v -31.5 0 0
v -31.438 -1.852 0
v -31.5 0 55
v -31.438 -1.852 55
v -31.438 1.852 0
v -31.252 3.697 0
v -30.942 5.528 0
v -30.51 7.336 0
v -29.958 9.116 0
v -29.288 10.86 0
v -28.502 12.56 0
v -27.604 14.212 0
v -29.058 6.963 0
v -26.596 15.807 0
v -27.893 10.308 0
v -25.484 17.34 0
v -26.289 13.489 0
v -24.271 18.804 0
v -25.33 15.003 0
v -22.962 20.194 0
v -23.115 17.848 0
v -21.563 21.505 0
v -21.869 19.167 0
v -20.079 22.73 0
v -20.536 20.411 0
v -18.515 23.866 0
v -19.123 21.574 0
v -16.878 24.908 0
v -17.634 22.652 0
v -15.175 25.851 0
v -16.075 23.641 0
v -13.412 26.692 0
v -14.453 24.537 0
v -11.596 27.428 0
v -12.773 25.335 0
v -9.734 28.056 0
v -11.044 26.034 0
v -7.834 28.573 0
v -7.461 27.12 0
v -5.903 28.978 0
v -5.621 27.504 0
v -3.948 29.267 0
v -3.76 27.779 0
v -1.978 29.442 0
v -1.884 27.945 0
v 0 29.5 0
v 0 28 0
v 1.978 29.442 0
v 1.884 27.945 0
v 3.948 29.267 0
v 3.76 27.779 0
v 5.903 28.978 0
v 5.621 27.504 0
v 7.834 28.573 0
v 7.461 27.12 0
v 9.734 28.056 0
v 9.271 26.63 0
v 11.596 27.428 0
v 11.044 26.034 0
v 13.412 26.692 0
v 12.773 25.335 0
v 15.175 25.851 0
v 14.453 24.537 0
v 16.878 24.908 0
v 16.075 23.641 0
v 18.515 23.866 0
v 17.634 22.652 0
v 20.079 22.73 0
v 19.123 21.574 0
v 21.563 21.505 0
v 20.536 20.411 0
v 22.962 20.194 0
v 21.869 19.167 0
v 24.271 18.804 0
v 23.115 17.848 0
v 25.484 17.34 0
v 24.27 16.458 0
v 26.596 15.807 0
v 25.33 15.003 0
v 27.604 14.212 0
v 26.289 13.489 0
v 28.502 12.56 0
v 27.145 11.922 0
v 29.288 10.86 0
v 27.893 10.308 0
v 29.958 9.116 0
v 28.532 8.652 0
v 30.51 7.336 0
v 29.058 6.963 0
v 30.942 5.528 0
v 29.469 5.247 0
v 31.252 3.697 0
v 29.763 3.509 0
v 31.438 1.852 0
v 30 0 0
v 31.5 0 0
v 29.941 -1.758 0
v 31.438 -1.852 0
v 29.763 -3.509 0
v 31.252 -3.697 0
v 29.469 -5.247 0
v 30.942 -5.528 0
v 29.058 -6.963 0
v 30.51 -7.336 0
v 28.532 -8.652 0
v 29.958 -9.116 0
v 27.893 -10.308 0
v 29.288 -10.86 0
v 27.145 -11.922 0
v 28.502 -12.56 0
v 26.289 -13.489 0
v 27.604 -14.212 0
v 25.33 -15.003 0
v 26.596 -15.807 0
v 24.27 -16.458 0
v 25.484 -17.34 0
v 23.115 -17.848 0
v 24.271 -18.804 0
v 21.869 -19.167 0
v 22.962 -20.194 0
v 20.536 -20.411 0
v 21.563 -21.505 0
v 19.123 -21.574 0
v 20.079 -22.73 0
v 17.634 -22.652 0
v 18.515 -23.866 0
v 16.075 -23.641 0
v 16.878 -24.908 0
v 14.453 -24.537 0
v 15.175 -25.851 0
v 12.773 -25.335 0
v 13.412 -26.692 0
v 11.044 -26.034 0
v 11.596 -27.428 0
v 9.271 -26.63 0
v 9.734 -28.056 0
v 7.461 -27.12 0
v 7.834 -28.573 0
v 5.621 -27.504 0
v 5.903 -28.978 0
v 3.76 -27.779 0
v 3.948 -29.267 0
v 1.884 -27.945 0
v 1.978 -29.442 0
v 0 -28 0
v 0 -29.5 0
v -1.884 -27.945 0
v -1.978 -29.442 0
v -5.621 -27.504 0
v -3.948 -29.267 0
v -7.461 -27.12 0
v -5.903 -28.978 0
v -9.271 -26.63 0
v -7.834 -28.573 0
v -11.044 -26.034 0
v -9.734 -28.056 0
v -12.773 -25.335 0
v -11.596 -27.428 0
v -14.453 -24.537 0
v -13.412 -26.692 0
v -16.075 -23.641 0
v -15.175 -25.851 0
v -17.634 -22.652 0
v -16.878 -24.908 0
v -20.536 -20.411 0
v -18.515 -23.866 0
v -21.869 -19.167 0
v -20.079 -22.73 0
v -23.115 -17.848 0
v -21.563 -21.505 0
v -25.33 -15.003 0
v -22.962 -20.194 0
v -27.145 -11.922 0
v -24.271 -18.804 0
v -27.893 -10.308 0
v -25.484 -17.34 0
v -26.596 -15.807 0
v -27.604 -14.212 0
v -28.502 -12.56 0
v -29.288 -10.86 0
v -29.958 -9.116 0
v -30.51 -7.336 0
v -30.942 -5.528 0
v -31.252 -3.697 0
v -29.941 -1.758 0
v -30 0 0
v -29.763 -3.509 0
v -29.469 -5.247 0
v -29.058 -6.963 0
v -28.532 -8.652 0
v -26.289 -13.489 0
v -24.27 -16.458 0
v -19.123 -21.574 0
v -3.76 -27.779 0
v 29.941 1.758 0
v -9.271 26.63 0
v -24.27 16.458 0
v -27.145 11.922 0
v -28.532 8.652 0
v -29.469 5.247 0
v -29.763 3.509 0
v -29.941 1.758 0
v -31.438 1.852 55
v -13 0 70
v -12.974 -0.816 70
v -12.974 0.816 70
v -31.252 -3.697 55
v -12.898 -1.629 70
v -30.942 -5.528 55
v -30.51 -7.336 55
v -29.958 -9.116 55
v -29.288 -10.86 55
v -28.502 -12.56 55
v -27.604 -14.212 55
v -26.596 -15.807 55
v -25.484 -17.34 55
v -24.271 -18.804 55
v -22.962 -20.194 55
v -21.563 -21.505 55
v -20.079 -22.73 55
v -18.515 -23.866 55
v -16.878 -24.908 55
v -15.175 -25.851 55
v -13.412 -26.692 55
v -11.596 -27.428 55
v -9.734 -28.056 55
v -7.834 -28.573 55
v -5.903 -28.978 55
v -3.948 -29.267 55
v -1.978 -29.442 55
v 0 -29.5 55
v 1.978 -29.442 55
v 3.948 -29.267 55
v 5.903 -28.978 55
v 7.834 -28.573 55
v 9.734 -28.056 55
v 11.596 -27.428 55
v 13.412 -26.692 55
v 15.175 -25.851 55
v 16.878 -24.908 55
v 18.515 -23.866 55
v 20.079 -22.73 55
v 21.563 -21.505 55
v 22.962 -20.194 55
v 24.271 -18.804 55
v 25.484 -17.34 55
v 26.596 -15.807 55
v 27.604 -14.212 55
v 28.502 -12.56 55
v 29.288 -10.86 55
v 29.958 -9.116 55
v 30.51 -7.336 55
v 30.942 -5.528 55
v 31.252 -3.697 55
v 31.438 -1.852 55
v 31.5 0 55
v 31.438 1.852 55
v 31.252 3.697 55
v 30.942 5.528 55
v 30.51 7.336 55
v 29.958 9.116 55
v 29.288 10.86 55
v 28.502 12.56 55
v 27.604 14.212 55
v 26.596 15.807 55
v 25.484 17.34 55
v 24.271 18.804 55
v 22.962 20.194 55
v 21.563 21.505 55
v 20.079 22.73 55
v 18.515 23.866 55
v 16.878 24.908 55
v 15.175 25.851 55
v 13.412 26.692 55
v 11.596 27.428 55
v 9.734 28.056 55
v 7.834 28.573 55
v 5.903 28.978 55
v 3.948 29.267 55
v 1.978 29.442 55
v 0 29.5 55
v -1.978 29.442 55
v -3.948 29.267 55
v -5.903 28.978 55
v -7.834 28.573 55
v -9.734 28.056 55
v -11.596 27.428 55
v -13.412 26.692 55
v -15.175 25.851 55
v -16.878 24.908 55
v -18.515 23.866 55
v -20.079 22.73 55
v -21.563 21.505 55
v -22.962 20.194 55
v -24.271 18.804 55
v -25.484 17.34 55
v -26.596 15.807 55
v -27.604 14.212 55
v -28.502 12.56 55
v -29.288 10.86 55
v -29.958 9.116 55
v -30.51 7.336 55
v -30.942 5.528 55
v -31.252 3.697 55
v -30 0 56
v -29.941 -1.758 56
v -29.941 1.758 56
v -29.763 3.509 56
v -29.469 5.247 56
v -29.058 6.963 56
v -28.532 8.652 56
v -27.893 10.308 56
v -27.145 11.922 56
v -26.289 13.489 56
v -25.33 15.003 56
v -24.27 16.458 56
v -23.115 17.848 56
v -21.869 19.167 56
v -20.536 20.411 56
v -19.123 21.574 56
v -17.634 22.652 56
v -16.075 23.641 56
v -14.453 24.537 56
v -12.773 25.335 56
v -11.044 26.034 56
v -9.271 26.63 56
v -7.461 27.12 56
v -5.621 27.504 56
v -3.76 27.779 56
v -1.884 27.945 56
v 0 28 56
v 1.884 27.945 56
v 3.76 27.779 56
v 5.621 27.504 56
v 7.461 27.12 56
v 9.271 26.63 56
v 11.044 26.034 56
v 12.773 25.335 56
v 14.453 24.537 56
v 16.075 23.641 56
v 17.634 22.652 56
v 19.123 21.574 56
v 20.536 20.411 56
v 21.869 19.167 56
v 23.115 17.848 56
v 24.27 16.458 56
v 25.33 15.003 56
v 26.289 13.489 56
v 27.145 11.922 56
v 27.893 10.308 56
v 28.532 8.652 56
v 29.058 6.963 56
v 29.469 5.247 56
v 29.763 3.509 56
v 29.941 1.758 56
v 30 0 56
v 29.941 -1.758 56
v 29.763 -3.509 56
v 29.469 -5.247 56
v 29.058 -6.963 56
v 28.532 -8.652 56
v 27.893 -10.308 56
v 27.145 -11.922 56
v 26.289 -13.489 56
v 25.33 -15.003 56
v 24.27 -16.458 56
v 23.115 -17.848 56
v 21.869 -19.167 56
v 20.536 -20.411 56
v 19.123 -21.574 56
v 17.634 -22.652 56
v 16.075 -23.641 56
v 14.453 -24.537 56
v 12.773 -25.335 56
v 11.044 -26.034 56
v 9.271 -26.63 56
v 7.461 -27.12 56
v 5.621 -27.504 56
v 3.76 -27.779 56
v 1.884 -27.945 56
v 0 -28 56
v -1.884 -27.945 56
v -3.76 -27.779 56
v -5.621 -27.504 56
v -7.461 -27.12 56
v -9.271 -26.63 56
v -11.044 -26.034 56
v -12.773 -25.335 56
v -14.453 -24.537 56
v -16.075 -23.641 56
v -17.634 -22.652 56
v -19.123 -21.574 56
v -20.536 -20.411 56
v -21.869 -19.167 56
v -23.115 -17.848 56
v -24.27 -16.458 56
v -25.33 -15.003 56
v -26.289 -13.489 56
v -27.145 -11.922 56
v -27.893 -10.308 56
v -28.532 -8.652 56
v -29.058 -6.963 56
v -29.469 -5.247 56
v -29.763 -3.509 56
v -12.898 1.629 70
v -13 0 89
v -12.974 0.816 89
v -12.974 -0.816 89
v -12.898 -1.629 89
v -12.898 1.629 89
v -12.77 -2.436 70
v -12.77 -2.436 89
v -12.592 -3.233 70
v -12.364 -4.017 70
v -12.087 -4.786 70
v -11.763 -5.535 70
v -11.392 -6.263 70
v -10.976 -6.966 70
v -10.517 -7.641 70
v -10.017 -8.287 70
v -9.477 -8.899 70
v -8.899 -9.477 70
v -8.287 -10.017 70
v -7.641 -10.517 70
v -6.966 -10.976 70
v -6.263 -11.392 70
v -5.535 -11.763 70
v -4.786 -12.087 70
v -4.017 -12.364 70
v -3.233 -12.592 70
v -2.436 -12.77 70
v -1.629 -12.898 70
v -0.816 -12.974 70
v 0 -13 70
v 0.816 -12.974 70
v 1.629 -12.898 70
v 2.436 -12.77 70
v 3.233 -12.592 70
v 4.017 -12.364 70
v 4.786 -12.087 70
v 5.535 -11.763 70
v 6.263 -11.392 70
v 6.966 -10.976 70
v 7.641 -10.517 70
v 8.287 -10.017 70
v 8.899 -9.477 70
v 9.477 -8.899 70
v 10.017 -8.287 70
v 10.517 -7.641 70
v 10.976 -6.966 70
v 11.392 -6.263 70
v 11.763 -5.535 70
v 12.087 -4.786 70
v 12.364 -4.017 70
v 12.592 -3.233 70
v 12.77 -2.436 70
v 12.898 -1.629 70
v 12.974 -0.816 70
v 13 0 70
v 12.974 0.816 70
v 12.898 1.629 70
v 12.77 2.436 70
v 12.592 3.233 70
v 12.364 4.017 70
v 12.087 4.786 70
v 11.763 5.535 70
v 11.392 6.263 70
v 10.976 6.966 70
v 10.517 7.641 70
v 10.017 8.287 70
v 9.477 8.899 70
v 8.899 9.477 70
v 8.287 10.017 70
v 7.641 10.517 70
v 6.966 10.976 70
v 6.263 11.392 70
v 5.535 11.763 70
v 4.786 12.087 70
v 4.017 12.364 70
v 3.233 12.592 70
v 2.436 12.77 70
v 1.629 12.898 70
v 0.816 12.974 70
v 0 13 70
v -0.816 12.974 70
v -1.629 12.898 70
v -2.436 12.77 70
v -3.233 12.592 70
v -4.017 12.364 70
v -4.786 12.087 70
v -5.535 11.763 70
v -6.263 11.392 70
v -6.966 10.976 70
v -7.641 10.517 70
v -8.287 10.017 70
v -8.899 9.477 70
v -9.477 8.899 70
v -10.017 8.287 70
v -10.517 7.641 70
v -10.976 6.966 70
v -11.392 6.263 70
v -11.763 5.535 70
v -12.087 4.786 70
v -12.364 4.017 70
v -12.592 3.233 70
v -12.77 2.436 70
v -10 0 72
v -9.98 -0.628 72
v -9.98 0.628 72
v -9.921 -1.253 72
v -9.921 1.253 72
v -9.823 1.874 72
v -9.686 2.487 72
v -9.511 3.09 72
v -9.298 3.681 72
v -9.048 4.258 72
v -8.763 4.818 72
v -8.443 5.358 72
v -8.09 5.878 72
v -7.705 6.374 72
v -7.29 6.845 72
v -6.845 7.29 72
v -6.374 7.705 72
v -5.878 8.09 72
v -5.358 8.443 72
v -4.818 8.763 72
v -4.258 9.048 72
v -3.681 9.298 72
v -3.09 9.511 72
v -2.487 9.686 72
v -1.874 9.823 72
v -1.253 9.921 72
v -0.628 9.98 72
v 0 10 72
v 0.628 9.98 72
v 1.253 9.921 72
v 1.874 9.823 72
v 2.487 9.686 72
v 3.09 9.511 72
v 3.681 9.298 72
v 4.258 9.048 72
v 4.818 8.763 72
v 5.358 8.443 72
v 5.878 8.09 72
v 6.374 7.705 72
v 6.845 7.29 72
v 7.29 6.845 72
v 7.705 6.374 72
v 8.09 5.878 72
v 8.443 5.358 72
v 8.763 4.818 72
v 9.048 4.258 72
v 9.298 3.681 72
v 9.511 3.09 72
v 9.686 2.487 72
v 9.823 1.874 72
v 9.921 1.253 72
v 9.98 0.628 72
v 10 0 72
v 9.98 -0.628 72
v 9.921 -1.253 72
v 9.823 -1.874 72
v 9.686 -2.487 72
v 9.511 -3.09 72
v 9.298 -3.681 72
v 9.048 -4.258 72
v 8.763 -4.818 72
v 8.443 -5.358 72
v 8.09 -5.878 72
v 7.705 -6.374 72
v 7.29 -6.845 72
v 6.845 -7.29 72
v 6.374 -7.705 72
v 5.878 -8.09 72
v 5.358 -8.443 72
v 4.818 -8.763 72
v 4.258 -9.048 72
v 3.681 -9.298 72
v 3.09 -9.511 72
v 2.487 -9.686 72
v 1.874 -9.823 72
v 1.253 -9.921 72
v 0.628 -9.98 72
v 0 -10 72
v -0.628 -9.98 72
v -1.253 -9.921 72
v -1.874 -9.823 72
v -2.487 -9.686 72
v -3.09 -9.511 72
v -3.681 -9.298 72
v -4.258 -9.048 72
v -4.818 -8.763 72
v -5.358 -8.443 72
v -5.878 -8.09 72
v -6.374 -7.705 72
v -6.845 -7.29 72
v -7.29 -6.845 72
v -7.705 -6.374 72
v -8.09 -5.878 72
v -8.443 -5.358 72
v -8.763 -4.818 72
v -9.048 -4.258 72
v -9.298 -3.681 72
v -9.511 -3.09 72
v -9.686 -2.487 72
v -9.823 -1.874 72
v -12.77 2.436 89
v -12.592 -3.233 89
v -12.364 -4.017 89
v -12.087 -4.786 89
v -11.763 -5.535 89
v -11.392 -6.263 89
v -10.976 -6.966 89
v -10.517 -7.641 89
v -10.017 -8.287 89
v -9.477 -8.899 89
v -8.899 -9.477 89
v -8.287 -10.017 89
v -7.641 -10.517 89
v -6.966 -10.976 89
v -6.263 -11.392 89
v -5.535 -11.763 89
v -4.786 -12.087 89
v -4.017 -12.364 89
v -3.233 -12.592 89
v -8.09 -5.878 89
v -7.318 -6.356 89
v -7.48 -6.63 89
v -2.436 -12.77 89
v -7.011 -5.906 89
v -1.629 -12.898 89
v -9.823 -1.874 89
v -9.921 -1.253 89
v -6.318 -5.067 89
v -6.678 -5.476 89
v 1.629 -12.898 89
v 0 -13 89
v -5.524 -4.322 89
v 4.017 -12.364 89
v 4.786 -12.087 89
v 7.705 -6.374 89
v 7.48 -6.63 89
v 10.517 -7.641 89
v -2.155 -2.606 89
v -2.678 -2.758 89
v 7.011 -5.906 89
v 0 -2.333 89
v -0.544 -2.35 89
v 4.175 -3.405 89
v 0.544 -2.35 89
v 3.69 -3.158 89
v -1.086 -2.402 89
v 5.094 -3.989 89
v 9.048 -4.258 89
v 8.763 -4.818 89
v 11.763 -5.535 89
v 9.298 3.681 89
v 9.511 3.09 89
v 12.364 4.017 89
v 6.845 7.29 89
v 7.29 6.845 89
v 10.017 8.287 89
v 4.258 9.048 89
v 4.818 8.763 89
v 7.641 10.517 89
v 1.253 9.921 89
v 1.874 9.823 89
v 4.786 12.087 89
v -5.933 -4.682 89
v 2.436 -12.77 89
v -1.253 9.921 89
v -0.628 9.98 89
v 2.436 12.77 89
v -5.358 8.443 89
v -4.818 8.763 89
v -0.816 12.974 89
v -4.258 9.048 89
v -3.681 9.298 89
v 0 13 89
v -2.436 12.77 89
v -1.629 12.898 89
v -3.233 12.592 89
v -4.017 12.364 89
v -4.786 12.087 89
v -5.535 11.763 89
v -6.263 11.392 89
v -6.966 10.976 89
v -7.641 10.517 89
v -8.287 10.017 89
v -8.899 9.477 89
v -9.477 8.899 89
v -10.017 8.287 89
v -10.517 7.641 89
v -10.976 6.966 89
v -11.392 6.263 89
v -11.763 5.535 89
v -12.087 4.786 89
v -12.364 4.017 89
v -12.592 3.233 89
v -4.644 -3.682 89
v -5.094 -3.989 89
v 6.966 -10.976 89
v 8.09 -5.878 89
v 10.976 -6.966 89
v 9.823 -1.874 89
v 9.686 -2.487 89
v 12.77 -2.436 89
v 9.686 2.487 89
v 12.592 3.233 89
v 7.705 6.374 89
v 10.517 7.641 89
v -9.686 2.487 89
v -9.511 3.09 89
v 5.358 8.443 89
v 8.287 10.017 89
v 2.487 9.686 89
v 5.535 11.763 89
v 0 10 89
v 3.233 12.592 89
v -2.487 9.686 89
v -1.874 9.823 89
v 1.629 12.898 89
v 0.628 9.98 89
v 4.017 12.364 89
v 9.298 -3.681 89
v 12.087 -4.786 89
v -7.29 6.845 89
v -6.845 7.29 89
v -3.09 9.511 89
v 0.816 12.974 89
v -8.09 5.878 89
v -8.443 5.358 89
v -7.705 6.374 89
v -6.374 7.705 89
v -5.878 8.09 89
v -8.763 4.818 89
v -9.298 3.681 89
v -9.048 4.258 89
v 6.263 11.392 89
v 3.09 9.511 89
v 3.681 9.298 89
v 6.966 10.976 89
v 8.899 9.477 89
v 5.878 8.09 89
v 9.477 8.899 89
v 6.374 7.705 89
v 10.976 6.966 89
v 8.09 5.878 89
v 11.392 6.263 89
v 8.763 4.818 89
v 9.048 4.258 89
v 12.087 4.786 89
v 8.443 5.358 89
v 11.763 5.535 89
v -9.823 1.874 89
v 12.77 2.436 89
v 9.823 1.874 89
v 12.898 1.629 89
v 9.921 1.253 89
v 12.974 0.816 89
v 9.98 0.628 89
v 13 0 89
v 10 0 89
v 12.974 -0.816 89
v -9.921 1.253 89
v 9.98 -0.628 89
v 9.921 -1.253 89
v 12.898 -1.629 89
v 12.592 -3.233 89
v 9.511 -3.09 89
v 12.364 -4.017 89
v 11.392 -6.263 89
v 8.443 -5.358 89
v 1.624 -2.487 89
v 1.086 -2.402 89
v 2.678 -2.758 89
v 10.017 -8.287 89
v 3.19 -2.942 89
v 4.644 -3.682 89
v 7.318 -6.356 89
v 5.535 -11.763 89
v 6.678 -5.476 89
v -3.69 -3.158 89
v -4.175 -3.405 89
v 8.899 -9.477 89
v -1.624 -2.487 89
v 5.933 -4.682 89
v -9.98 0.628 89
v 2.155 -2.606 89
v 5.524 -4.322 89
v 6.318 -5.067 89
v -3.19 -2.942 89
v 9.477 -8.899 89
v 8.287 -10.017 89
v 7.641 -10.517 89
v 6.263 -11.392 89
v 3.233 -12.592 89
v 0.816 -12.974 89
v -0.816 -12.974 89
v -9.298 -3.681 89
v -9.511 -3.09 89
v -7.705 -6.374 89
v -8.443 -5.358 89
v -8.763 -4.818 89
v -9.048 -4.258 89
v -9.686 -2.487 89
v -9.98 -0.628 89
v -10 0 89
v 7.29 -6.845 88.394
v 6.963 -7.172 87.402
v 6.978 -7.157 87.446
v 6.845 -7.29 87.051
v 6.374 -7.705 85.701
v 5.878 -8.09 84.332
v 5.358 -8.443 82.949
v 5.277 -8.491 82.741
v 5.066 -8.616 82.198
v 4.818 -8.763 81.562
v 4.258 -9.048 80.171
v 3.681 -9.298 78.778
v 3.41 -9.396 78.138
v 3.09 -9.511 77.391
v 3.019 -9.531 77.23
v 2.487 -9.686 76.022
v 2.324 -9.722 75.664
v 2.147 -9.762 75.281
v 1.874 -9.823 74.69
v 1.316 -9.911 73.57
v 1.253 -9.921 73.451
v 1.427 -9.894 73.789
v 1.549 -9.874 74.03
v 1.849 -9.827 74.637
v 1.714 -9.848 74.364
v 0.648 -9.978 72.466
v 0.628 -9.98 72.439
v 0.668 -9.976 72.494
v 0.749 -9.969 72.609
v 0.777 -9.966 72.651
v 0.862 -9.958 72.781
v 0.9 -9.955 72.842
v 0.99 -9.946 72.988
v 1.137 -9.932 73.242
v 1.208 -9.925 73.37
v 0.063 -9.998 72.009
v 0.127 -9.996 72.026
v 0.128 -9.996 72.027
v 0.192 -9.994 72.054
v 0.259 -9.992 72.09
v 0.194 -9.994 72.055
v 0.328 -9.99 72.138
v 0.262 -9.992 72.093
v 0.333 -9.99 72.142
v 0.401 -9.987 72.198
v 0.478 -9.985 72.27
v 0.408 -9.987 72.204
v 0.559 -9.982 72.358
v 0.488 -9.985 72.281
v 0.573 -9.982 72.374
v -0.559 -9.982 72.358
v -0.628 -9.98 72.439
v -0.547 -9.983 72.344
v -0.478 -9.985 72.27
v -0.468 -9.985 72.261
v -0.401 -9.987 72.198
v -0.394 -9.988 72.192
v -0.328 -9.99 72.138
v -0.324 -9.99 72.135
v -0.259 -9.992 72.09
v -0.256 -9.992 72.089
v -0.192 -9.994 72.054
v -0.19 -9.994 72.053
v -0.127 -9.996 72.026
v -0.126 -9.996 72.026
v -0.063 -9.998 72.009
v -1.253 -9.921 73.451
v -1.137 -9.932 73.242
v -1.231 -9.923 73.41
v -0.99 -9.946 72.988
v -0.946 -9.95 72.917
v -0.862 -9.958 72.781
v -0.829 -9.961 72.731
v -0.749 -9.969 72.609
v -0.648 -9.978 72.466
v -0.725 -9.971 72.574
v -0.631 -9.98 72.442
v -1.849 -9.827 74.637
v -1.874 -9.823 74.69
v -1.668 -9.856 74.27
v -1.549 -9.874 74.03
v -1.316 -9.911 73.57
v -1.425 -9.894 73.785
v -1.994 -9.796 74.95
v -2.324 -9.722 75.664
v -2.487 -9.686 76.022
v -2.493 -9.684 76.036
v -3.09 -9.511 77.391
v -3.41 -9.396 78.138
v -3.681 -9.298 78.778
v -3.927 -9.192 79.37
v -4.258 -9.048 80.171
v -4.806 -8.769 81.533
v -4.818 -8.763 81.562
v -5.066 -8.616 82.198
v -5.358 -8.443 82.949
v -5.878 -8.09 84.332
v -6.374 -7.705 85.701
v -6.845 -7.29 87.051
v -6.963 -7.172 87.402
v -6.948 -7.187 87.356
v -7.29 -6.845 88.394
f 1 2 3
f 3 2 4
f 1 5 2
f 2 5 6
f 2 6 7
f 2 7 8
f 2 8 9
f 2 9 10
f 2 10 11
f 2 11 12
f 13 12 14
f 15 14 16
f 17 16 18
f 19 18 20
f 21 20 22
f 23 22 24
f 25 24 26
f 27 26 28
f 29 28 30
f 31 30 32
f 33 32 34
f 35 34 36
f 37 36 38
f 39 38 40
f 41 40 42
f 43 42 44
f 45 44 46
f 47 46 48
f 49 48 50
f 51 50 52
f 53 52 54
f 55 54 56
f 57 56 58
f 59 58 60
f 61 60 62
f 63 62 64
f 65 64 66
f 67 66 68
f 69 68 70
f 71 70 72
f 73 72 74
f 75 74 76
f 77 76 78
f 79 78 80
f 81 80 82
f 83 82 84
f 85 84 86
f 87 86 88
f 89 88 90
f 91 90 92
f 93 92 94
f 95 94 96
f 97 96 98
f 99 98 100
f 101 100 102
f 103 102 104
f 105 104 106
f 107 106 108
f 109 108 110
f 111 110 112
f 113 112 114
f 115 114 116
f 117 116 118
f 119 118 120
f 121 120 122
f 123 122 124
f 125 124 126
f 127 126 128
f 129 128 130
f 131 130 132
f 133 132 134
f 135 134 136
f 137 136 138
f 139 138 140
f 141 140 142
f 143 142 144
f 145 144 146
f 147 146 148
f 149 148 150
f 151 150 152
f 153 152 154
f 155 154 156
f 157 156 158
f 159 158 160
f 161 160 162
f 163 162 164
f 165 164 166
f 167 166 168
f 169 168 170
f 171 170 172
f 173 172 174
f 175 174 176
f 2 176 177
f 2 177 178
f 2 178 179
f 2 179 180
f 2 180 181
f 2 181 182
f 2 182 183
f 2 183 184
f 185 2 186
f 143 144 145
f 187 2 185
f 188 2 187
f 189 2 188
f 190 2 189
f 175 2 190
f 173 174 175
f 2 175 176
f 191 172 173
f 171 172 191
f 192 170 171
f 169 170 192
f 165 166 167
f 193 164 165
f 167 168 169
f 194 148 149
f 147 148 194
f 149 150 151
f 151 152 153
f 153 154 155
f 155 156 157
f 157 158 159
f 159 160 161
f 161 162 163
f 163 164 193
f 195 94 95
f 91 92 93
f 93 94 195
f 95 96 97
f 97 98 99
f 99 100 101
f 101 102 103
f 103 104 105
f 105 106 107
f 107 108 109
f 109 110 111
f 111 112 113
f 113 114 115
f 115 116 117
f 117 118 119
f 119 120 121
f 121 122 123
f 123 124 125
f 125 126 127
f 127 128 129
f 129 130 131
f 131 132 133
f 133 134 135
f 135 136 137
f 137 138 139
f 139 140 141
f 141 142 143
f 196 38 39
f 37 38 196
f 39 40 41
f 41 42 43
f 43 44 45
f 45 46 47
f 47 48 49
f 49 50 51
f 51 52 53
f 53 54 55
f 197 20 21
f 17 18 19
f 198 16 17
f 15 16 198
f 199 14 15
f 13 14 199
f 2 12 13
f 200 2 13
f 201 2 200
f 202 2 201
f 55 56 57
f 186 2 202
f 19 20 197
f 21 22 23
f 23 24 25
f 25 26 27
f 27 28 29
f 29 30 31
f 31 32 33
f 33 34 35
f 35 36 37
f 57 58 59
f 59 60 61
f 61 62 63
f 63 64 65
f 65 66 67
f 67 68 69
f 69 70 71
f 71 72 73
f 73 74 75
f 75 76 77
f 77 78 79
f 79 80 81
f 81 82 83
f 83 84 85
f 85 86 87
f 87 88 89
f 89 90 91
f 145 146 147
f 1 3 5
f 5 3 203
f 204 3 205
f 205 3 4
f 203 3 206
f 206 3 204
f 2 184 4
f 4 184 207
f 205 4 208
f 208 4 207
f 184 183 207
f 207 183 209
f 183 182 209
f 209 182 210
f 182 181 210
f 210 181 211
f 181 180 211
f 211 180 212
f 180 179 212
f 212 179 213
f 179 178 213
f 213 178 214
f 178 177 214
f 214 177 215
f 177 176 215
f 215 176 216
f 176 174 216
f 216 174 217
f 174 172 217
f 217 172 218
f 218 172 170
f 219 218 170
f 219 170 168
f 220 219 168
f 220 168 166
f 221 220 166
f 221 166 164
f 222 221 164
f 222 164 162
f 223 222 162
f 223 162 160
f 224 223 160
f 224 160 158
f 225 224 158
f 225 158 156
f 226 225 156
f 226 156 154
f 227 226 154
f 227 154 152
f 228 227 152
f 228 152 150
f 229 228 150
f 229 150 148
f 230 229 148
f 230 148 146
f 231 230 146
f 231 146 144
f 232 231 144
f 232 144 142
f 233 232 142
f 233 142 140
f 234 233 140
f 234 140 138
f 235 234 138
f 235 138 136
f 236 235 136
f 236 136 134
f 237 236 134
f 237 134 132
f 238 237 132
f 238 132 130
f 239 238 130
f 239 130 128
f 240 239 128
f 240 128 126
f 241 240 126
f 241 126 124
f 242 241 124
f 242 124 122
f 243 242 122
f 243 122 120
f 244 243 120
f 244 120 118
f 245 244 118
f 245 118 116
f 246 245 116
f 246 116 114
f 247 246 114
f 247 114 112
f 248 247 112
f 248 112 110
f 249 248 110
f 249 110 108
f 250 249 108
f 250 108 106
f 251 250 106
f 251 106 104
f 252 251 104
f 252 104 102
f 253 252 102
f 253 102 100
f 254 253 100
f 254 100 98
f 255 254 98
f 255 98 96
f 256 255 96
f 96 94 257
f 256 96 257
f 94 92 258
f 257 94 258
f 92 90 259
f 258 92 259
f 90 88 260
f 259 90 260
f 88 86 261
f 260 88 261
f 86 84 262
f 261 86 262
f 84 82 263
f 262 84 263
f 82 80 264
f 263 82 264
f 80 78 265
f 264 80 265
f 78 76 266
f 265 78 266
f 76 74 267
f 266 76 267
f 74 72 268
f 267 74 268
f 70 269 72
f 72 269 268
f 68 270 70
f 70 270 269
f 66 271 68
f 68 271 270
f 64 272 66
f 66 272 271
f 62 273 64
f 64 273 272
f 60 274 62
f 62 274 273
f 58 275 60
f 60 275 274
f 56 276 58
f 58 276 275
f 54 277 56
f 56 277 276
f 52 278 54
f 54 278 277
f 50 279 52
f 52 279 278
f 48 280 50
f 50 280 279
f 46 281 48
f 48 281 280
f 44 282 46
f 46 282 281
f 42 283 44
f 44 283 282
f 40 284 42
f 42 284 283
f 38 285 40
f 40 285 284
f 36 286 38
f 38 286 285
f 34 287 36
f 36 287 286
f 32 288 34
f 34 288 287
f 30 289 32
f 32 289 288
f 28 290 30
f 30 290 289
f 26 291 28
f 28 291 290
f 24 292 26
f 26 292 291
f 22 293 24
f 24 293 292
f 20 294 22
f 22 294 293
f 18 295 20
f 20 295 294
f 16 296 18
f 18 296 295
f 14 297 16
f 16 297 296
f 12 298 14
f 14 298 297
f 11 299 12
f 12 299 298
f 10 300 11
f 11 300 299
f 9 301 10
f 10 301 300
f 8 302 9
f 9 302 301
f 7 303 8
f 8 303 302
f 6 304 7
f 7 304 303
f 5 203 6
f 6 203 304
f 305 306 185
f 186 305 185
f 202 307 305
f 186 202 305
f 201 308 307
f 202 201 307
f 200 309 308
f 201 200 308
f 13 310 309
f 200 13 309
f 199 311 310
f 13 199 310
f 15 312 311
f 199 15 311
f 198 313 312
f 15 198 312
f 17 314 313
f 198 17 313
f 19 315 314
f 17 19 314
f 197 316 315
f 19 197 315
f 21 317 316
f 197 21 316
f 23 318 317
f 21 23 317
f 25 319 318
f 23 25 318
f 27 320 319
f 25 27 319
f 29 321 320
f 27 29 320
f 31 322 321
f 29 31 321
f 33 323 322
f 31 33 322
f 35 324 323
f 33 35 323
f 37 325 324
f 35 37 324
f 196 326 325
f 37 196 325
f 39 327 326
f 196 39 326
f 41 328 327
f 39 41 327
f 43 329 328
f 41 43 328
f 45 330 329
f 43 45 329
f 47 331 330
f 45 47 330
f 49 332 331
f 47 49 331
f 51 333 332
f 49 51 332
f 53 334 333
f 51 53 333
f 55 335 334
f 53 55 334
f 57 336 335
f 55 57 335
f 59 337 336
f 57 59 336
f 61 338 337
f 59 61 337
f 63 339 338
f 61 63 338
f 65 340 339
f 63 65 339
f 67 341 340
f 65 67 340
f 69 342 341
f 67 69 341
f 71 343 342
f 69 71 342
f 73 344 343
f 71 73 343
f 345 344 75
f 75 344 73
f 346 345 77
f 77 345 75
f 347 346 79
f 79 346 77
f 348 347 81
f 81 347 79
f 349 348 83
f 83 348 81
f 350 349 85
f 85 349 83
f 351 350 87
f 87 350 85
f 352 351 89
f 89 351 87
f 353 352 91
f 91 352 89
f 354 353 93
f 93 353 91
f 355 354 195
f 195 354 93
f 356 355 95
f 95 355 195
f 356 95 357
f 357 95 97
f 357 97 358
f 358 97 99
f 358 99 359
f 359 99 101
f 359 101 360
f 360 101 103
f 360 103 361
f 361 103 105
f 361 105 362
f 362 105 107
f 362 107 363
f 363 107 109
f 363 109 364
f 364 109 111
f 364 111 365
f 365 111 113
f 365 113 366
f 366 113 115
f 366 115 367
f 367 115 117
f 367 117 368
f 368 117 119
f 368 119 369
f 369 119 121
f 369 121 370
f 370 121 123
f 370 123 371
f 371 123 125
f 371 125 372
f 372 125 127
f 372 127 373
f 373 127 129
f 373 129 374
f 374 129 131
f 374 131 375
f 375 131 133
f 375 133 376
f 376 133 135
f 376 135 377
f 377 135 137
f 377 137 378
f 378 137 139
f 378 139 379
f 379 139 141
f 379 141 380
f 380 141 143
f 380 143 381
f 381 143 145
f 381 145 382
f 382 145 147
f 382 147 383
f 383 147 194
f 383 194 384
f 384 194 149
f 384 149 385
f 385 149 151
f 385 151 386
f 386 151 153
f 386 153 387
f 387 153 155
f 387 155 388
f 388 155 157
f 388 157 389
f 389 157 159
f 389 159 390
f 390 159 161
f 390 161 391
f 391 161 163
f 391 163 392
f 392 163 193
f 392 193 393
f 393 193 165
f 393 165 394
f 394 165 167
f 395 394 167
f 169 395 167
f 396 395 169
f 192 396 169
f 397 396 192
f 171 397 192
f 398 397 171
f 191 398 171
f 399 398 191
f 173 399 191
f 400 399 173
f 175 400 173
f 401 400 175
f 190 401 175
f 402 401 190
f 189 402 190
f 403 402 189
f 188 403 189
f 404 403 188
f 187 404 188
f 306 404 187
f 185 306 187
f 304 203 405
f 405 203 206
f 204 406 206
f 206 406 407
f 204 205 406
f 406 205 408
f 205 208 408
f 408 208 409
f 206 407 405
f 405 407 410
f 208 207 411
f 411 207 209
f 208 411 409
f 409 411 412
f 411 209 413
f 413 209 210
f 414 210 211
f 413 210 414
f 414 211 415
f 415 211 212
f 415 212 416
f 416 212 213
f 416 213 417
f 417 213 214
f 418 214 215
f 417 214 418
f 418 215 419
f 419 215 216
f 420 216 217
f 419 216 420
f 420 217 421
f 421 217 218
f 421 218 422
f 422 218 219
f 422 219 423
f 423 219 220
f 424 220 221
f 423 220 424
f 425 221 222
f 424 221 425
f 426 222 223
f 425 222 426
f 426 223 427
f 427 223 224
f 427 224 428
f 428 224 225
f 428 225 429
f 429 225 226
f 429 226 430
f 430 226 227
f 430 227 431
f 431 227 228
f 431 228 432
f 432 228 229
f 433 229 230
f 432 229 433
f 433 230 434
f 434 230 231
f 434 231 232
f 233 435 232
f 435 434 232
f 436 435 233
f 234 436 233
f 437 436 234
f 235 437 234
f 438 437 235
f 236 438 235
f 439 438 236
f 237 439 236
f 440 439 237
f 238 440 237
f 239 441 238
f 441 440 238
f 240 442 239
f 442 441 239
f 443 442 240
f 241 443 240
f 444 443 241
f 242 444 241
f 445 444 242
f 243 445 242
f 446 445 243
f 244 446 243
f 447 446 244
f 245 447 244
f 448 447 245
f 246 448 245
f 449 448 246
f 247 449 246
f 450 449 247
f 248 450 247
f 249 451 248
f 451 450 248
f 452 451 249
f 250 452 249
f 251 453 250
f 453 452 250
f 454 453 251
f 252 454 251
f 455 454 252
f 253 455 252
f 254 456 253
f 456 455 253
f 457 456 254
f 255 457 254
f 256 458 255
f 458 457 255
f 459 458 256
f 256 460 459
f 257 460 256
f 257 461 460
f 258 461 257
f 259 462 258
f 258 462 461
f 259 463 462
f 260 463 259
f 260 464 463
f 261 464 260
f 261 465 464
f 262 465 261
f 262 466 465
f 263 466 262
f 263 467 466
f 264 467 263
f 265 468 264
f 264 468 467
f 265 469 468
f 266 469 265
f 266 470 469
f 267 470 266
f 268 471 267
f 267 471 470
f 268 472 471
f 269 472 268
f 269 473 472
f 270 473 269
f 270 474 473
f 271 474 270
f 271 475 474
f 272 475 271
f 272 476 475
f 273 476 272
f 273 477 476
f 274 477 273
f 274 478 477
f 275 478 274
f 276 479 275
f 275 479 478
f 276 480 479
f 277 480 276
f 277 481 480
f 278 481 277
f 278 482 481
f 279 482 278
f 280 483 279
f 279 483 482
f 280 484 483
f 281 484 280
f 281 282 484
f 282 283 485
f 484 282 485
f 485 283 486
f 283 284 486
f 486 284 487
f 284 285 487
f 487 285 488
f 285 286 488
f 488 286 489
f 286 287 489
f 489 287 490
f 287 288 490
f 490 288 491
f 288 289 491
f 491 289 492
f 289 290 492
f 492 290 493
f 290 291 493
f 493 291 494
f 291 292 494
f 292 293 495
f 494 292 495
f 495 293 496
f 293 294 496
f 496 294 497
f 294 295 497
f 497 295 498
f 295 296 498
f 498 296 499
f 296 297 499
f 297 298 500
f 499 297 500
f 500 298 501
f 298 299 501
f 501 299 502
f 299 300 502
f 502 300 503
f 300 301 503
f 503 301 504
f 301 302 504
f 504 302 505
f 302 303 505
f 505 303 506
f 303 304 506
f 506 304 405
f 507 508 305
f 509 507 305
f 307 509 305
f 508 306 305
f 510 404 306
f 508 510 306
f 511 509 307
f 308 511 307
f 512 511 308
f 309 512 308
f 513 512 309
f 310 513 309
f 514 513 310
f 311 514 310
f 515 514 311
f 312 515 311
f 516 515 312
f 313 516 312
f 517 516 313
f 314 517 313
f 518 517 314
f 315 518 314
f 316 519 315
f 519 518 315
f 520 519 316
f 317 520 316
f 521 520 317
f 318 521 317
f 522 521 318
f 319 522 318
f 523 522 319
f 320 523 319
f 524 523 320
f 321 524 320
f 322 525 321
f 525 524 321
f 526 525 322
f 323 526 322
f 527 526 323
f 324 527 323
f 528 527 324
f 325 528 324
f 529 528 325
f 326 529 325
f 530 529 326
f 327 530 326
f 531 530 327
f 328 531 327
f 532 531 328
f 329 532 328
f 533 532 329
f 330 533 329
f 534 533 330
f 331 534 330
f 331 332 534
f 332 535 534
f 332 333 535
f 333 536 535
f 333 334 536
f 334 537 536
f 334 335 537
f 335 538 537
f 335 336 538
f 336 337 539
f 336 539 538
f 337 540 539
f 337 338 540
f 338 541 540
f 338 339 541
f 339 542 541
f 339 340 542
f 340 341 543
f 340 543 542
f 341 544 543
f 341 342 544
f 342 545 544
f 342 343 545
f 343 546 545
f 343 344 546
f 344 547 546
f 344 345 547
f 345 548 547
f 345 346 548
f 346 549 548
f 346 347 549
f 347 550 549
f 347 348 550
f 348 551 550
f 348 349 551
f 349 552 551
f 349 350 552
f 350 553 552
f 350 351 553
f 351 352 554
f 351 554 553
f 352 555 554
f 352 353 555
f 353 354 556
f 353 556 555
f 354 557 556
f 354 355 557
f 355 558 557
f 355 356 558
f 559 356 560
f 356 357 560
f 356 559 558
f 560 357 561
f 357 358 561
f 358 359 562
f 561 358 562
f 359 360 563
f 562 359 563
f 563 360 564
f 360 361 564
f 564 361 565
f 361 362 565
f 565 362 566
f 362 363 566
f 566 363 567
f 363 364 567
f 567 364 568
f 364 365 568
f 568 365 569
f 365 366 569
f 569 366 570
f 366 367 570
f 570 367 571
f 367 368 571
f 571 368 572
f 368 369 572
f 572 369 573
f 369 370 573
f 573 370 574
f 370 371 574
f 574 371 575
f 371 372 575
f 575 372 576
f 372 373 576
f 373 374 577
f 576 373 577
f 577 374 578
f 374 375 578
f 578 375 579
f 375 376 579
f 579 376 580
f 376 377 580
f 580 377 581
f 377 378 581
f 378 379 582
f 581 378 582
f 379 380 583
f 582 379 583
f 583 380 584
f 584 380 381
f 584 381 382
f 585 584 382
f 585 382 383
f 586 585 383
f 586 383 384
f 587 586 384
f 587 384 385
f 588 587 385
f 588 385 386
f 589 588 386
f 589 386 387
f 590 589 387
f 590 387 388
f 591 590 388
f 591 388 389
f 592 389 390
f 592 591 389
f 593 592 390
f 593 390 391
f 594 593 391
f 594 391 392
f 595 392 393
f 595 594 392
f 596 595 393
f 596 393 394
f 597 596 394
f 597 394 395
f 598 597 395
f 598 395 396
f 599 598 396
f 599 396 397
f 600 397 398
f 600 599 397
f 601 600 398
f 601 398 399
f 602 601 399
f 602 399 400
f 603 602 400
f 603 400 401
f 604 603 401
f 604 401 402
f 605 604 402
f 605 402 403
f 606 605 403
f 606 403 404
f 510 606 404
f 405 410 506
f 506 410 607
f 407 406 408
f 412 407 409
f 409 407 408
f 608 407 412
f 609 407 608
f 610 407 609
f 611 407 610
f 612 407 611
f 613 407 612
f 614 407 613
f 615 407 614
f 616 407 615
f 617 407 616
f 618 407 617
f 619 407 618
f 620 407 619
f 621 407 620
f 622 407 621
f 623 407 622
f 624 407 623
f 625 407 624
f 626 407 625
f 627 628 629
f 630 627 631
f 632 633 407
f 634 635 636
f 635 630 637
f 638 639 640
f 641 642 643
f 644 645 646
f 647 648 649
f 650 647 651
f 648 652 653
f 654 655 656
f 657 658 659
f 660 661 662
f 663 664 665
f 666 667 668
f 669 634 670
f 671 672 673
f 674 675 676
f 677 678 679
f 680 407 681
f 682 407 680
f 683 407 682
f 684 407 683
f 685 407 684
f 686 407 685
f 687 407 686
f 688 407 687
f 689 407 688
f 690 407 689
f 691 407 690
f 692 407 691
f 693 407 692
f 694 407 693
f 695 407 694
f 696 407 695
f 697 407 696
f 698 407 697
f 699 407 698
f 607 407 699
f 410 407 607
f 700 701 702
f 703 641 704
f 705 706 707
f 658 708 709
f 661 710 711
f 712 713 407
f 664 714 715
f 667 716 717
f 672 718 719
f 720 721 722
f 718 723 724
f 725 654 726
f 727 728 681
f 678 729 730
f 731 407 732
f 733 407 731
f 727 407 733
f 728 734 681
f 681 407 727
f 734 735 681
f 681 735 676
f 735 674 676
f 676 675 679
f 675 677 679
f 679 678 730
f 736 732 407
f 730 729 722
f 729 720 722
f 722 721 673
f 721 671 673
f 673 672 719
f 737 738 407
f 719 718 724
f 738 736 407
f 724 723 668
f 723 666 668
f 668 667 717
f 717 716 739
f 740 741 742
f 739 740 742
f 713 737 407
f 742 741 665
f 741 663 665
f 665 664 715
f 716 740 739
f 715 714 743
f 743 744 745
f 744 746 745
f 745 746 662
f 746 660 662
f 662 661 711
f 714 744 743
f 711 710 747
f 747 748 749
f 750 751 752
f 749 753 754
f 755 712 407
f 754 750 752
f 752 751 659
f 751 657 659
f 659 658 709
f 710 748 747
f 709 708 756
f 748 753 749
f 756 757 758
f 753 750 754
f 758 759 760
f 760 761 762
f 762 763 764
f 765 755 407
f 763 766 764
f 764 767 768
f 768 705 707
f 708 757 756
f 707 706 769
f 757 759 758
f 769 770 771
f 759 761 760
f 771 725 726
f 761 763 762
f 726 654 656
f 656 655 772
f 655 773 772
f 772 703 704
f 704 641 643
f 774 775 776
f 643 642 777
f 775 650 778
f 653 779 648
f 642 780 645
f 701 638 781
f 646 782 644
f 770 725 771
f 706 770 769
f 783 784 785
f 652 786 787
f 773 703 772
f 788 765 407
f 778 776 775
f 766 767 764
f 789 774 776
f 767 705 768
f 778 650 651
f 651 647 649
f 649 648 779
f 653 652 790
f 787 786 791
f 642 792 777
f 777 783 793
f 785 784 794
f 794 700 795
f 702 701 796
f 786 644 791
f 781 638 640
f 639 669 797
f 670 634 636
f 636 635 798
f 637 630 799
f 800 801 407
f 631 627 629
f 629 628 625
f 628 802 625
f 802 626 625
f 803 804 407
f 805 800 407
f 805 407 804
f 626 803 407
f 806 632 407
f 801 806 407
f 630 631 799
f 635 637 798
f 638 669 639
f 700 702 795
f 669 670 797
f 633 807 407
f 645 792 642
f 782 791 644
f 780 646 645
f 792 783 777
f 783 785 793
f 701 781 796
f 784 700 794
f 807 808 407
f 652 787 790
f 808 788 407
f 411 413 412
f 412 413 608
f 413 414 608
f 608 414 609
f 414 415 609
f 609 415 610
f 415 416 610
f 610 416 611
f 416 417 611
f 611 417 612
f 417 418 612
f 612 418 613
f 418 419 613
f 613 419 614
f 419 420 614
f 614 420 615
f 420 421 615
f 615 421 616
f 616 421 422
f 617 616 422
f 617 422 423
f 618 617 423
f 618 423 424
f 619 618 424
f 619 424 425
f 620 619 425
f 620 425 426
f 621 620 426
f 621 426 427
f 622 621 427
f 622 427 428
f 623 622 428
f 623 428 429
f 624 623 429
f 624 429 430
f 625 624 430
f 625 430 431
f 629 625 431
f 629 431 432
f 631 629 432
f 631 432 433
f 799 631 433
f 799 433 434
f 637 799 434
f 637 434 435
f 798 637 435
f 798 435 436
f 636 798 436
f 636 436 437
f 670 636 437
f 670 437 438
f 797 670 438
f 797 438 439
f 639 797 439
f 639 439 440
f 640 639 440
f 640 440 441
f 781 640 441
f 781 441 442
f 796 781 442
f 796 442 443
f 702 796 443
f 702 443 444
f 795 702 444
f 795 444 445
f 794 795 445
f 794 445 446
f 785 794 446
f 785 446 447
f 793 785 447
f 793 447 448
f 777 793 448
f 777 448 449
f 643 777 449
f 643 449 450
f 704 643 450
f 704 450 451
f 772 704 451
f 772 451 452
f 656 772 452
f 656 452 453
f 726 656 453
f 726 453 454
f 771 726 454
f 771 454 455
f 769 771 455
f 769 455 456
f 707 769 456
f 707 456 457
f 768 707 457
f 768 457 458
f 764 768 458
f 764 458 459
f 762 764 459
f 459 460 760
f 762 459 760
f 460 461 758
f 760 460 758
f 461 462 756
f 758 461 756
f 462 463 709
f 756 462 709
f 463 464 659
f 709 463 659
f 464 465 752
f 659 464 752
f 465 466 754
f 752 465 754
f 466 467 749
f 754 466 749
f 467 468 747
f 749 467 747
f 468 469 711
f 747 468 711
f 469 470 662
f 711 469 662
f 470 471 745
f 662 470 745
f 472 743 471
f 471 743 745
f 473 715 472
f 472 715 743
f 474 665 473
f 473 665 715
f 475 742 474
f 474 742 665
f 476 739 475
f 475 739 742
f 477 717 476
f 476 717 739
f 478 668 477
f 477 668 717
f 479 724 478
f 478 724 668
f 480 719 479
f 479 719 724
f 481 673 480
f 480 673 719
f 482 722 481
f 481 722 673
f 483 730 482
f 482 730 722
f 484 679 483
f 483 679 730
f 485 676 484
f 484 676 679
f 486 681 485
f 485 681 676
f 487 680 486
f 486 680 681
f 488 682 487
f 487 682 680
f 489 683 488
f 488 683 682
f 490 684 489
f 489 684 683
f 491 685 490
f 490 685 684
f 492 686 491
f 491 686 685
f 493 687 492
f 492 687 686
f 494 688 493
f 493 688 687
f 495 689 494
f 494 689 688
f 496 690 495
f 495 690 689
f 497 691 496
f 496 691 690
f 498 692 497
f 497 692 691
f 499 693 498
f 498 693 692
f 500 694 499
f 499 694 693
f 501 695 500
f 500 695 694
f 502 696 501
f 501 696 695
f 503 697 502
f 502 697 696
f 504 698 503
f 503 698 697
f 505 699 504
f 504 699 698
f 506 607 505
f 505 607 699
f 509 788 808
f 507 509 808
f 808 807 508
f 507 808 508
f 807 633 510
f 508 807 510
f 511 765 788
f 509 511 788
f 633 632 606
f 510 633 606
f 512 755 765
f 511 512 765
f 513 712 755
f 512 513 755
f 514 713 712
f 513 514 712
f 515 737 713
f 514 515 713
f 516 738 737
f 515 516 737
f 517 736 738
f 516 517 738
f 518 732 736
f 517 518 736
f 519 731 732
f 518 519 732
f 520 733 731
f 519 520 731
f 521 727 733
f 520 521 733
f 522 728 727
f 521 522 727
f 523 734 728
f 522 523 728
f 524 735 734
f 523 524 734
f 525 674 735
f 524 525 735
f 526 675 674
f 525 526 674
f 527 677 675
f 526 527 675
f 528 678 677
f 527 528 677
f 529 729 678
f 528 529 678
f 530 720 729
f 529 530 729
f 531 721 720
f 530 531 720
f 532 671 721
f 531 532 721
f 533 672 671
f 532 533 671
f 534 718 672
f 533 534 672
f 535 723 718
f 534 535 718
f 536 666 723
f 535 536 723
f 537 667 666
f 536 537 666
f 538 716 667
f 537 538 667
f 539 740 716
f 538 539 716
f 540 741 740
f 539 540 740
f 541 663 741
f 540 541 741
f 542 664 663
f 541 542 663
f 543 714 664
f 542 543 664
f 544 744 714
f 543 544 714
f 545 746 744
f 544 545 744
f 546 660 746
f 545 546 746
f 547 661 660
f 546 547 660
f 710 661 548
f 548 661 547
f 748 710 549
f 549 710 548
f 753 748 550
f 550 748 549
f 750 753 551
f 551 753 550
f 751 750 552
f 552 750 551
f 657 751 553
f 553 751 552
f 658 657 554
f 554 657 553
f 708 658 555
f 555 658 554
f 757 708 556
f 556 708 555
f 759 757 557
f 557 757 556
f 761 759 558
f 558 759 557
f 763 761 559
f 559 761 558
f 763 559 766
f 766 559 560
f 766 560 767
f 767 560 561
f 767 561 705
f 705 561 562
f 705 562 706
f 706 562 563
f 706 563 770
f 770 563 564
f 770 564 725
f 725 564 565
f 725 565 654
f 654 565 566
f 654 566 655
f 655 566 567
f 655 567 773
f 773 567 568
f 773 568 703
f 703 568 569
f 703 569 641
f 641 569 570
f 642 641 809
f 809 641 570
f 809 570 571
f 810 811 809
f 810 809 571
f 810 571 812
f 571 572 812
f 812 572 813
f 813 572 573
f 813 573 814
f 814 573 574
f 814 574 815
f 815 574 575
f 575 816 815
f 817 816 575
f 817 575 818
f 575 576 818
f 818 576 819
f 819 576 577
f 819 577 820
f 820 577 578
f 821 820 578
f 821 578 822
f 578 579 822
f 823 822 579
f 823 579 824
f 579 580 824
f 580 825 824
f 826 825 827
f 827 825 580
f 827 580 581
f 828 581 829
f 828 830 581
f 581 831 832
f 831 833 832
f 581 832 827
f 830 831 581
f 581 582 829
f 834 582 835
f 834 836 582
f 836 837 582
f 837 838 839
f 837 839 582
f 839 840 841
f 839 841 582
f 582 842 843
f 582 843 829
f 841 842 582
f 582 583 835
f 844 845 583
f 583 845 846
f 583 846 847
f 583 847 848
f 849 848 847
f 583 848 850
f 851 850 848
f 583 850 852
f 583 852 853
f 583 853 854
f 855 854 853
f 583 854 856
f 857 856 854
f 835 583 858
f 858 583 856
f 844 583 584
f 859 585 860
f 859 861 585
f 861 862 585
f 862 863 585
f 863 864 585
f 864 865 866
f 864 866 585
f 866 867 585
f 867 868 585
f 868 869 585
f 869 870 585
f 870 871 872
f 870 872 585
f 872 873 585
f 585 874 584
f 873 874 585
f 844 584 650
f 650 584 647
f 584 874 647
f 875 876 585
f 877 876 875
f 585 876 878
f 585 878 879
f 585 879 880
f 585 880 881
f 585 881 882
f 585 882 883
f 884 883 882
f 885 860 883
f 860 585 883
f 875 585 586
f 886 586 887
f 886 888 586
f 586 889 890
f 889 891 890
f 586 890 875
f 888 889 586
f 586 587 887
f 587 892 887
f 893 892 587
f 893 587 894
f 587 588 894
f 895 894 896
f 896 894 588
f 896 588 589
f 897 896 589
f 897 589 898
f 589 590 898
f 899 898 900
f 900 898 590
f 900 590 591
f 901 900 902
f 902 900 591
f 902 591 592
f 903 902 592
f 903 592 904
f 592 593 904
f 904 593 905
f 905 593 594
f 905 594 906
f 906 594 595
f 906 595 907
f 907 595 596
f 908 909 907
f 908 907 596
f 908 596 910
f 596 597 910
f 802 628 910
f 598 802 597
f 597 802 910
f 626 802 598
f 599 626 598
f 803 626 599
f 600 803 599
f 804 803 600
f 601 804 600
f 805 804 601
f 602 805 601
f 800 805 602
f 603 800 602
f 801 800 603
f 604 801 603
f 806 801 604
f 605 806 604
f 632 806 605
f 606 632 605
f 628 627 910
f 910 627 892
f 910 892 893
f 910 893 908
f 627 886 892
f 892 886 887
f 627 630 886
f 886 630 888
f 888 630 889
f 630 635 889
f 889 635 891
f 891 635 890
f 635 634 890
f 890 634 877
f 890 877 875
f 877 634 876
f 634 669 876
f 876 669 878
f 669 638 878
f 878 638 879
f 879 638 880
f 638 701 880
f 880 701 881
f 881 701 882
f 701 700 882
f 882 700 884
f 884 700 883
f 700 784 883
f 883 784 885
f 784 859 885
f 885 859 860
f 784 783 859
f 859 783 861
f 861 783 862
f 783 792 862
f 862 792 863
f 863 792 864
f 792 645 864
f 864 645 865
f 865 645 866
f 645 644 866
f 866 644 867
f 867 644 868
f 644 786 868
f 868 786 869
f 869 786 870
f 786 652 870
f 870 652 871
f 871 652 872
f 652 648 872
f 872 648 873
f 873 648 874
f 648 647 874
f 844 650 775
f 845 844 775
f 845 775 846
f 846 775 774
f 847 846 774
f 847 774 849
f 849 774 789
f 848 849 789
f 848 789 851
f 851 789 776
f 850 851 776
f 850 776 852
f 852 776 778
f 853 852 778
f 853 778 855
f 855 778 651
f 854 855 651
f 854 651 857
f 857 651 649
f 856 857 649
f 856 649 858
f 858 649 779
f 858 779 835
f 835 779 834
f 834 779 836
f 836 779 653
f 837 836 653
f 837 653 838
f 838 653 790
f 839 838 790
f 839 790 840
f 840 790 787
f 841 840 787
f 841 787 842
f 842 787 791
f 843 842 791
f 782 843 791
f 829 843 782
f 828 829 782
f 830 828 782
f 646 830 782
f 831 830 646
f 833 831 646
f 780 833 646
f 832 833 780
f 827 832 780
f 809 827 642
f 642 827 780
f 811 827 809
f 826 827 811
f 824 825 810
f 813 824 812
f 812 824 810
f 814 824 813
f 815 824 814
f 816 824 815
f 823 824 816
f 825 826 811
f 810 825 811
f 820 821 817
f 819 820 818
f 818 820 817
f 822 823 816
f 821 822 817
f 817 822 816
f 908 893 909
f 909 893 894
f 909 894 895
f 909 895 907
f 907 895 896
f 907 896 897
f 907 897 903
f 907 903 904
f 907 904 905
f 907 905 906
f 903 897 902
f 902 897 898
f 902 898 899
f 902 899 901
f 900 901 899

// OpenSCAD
blower_w = 60;
blower_h = 56;
blower_length = 55;
walls = 3;
tee_depth = 19;

difference(){

	union(){

		// tee-end connector	
		difference(){
			translate([0,0,70]){
				cylinder(r=(26/2), h=tee_depth, $fn=100);	
			}
			translate([0,0,70]){
				cylinder(r=(26/2) - walls, h=tee_depth + 2, $fn=100);
			}
		}

		hull(){
			// tee-end opening
			translate([0,0,60]){
				cylinder(r=(26/2), h=10, $fn=100);
			}

			// blower-end
			resize(newsize=[blower_w + walls, blower_h + walls, blower_length]){
				cylinder(r=(blower_w/2), h=blower_length, $fn=100);
			}
		}
	}

	hull(){
		// tee-end hole
		translate([0,0,60]){
			cylinder(r=(26/2) - walls, h=10 + 2, $fn=100);
		}

		// blower-end hole
		translate([0,0,-1]){
			resize(newsize=[blower_w, blower_h, blower_length + 2]){
				cylinder(r=(blower_w/2), h=blower_length, $fn=100);
			}
		}
	}
}

difference(){
	// deflector
	translate([0,-11,72]){
		cylinder(r1=1,r2=(26/3), h=tee_depth-2, $fn=100);
	}

	difference(){
		translate([0,0,71]){
			cylinder(r=(26/2)+10, h=tee_depth, $fn=100);	
		}
		translate([0,0,70]){
			cylinder(r=(26/2), h=tee_depth+2, $fn=100);	
		}
	}

}
	
